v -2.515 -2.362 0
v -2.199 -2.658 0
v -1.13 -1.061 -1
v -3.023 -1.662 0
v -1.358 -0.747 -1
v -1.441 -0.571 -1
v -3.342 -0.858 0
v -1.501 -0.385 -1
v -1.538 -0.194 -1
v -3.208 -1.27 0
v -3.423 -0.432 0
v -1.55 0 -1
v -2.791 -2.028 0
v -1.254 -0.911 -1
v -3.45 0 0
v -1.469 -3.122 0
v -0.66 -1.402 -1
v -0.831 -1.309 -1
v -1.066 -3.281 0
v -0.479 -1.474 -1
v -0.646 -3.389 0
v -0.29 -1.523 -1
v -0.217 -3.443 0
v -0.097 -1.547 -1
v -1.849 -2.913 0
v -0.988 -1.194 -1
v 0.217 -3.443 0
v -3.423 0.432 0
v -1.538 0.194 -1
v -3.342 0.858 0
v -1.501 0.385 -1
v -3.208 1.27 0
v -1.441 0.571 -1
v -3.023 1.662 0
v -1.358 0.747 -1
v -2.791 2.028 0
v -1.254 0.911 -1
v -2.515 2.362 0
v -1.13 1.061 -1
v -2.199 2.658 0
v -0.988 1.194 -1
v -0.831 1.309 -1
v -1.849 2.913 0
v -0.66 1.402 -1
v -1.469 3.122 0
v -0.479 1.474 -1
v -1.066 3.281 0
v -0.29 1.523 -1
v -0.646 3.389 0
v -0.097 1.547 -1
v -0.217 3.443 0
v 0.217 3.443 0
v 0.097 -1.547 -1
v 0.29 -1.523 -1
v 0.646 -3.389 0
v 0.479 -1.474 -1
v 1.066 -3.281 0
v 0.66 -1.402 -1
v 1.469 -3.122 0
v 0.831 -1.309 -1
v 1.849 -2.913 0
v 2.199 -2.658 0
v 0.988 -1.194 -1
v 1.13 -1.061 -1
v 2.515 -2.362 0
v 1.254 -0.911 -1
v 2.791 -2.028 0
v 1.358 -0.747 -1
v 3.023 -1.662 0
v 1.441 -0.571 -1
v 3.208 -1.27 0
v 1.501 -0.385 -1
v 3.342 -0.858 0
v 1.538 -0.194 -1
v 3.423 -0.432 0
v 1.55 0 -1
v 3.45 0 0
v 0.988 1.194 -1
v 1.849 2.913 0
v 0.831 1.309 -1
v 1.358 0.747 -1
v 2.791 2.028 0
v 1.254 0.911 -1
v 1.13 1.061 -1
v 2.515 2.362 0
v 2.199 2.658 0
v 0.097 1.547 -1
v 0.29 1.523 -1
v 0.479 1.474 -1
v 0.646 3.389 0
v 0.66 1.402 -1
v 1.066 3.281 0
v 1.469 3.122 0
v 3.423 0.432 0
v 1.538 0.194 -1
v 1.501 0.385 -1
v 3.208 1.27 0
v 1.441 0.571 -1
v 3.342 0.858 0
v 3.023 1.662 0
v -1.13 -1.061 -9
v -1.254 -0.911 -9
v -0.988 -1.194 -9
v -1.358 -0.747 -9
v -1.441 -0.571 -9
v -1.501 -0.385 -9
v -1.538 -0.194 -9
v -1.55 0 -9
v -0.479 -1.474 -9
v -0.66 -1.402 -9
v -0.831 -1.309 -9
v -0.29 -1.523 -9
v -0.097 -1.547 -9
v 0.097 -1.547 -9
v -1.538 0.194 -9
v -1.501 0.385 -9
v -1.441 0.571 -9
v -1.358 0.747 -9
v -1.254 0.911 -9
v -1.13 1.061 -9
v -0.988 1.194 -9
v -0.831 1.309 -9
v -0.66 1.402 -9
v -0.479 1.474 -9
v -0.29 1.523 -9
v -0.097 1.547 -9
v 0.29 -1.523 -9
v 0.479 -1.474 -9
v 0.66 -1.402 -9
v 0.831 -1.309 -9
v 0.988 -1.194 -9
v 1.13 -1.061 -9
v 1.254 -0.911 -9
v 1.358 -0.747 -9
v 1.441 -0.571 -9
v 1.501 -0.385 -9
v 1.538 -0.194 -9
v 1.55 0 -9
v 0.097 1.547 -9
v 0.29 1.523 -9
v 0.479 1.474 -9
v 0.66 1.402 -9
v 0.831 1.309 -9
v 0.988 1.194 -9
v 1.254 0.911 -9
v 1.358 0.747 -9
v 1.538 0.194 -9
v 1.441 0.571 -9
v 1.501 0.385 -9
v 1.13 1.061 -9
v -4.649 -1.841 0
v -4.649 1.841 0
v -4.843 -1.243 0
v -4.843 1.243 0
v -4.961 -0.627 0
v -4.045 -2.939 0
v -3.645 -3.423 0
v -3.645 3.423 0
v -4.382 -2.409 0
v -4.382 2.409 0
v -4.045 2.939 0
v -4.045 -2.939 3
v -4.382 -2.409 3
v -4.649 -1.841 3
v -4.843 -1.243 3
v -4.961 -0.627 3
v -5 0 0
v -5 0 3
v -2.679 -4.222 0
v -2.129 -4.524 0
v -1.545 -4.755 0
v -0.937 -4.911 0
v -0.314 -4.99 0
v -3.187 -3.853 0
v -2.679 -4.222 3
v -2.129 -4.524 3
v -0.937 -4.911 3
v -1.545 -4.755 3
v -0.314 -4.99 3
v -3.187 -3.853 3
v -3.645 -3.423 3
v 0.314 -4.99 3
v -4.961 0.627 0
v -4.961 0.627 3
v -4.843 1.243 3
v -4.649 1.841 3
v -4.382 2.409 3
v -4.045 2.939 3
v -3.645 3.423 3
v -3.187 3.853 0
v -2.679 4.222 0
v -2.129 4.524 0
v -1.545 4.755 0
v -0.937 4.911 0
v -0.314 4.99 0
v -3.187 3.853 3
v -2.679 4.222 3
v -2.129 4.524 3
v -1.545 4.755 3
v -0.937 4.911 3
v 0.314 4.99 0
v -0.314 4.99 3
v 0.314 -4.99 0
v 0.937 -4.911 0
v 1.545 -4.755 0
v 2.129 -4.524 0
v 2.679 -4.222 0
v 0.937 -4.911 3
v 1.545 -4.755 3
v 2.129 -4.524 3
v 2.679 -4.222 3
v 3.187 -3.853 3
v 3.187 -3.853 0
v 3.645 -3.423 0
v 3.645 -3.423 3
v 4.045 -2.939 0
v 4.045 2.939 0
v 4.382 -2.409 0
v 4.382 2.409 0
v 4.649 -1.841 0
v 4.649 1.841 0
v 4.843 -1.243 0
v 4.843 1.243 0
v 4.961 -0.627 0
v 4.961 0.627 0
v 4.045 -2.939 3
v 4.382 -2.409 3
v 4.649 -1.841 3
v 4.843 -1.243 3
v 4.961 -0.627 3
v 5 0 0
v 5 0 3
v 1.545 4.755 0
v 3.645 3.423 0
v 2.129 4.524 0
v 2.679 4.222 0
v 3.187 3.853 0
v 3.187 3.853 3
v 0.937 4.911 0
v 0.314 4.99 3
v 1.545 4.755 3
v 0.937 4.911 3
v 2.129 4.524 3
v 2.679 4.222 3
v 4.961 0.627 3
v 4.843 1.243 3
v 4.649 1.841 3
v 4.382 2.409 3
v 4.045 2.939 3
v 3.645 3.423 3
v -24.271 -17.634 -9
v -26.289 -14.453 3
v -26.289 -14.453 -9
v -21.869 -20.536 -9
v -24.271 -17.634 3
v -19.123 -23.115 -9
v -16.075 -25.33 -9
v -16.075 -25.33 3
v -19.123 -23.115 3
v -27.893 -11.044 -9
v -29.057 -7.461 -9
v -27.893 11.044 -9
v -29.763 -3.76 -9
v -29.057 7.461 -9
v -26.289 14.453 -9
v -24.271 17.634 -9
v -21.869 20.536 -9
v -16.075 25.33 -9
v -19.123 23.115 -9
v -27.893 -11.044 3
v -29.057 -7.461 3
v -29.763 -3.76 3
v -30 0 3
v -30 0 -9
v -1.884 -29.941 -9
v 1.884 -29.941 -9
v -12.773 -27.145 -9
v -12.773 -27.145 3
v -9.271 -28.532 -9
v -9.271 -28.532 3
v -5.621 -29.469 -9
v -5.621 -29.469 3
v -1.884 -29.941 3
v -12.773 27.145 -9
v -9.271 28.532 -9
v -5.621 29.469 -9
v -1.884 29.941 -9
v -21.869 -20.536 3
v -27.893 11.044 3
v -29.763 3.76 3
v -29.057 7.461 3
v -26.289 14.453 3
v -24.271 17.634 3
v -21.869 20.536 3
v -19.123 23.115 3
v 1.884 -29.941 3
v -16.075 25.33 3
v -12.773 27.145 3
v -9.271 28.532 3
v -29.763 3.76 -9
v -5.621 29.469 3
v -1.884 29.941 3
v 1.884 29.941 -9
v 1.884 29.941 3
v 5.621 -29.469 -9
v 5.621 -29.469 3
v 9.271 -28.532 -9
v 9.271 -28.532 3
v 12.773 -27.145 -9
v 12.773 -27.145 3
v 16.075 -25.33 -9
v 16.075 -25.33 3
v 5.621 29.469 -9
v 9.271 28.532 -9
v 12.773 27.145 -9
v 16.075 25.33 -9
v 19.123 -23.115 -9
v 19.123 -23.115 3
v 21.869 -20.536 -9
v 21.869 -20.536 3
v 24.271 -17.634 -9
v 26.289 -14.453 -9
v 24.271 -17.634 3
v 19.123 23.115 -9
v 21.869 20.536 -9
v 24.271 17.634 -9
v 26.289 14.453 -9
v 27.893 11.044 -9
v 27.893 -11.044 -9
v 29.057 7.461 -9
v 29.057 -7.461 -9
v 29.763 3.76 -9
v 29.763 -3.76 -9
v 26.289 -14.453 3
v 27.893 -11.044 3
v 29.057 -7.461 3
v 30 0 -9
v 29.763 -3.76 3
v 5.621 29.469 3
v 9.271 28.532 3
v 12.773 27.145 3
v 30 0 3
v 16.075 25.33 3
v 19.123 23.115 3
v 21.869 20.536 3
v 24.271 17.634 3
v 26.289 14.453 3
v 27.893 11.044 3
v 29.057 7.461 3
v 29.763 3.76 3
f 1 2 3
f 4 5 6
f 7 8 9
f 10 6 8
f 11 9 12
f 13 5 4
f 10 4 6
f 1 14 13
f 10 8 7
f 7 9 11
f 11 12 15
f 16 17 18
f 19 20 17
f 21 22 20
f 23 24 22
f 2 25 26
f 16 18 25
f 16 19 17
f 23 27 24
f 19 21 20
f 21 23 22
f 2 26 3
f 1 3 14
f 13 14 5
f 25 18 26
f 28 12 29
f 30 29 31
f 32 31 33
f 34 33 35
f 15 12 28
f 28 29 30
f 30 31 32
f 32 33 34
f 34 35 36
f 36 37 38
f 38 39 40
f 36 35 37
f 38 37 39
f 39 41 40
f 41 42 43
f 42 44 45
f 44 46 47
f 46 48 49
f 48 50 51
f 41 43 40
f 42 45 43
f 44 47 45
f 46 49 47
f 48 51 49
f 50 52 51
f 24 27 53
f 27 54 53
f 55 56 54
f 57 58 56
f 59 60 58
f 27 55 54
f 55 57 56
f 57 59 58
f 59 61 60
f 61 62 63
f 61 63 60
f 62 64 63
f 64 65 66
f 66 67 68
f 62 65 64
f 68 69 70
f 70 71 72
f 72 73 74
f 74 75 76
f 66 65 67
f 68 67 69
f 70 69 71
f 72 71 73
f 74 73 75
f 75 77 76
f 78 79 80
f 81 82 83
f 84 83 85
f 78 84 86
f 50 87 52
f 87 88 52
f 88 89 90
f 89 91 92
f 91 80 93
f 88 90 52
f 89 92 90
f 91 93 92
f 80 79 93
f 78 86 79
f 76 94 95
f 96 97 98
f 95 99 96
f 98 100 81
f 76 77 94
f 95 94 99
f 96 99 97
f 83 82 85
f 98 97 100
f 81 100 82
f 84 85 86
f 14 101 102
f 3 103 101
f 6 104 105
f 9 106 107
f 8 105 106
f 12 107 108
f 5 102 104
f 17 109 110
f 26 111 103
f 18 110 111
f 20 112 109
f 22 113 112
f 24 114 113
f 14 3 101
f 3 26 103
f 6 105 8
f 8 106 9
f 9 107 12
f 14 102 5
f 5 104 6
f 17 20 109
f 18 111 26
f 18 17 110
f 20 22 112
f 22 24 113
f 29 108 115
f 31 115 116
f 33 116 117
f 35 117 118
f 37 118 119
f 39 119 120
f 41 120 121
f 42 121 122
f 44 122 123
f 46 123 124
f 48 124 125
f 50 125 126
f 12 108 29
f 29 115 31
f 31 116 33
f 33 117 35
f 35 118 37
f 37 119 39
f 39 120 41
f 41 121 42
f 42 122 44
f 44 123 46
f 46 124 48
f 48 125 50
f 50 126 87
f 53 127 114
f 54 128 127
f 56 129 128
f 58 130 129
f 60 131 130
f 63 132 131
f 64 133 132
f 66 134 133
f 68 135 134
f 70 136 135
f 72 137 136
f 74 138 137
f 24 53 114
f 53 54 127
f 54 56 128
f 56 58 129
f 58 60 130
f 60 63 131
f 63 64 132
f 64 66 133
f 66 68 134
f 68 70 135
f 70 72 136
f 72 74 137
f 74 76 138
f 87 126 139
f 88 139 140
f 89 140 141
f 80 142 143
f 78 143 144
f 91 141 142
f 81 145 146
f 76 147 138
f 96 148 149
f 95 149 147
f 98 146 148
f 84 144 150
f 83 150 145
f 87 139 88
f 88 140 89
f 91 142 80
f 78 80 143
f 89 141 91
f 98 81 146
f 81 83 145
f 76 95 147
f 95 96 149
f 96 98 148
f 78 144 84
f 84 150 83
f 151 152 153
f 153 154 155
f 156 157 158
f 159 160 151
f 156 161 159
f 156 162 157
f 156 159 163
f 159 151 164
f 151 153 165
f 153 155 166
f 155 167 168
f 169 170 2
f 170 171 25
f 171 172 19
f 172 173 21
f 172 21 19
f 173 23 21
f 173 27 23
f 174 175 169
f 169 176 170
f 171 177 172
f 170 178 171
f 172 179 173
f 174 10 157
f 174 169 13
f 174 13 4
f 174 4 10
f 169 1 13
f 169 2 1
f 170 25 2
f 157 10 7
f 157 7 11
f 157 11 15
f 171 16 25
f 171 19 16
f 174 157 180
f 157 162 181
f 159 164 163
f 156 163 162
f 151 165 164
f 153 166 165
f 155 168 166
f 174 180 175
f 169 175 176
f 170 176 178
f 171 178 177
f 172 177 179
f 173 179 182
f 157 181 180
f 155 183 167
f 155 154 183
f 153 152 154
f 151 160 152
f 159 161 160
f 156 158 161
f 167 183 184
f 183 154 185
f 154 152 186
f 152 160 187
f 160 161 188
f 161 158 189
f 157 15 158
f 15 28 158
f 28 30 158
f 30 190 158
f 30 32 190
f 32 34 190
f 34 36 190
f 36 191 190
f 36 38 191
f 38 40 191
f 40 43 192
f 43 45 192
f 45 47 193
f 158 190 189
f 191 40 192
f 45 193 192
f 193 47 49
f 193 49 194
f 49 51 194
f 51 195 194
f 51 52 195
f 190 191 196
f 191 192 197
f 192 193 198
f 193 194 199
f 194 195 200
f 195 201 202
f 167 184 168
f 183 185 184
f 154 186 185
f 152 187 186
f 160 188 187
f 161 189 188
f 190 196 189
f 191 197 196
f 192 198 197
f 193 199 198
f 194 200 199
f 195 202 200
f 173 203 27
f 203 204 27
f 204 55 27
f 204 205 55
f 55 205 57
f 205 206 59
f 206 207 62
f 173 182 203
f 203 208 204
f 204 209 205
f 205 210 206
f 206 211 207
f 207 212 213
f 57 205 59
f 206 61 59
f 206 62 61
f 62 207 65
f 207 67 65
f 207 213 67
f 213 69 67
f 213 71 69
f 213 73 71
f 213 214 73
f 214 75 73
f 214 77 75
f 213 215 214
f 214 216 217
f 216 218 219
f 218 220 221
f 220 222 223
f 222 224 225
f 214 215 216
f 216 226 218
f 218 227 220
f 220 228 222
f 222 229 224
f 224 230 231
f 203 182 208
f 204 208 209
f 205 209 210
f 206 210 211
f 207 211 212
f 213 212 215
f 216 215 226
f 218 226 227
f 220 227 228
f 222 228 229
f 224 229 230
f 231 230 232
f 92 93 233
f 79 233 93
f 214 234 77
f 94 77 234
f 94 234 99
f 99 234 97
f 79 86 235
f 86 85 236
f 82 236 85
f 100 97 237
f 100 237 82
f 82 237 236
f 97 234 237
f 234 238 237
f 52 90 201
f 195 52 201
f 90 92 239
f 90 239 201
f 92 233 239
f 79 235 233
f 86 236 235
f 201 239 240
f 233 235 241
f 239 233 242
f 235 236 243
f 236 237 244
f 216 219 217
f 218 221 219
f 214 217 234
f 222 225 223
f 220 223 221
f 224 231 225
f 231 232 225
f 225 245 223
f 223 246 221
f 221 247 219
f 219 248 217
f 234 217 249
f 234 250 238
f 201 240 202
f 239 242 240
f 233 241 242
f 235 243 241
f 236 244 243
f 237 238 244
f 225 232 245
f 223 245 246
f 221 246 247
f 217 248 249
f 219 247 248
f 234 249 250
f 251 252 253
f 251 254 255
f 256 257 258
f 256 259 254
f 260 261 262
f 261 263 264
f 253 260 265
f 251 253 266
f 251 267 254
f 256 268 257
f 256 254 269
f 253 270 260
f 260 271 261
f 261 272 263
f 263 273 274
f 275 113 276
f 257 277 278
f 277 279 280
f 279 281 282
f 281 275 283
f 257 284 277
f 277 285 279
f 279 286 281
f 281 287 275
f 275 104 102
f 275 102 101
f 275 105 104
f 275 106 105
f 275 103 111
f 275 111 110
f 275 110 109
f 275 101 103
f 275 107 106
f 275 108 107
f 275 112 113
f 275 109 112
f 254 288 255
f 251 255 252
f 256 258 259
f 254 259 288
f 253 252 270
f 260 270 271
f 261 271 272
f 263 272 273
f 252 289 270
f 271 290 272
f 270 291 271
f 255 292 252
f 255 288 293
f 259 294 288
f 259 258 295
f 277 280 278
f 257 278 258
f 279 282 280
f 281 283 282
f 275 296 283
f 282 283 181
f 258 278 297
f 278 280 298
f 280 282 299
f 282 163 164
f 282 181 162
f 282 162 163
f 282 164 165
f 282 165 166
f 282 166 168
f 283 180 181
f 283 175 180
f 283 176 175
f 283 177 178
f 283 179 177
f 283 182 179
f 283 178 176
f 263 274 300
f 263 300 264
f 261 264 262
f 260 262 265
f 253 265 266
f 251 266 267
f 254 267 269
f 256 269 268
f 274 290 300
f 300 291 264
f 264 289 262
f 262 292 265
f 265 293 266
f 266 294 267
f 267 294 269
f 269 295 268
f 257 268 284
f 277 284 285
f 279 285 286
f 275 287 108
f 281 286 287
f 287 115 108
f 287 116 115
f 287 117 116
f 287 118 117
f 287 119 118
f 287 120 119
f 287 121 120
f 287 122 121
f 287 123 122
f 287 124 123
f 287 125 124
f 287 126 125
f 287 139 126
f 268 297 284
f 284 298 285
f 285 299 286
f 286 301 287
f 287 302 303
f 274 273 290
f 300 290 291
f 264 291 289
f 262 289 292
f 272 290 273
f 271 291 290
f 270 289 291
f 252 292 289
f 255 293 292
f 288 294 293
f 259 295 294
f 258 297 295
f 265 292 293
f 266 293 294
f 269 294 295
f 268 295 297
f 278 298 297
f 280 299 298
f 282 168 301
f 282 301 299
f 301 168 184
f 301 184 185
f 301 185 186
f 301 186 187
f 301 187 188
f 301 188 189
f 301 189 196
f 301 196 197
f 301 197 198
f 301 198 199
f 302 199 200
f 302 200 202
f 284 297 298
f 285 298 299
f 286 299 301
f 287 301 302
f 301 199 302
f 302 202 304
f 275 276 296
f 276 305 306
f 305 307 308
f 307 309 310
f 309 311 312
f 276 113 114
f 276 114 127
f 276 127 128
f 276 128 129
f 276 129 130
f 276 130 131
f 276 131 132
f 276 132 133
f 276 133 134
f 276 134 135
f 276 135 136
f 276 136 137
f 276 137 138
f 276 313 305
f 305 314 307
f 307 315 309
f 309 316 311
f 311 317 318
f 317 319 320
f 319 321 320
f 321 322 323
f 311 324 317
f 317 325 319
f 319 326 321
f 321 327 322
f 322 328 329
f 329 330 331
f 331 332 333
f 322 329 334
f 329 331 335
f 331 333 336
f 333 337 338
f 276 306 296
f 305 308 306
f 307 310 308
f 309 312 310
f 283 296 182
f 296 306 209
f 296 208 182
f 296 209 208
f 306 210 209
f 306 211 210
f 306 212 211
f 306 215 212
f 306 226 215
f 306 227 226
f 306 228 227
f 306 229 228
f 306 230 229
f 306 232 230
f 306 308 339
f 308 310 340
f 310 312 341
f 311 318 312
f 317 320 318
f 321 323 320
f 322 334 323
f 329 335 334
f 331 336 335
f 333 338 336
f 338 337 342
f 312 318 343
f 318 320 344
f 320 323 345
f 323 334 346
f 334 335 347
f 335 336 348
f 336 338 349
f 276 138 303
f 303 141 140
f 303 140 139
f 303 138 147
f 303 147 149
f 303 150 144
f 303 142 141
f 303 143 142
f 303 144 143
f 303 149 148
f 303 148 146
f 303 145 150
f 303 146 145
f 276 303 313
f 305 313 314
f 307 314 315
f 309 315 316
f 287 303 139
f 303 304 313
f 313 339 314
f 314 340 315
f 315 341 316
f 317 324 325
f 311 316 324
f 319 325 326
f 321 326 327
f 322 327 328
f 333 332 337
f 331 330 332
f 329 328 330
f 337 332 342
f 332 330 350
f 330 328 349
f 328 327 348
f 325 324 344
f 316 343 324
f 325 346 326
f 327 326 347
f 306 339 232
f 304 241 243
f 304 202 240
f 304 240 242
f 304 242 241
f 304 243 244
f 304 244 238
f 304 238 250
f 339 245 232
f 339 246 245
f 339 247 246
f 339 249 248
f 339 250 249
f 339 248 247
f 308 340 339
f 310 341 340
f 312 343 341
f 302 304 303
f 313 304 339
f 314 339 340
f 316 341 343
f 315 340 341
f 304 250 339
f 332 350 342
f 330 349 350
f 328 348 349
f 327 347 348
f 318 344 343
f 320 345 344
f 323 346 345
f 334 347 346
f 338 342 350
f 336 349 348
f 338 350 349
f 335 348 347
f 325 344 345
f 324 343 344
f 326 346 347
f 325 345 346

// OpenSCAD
$fn = 50;


difference() {
	union() {
		translate(v = [0, 0, -9.0000000000]) {
			cylinder(h = 12, r = 30.0000000000);
		}
	}
	union() {
		translate(v = [0, 0, 0]) {
			rotate(a = [0, 0, 0]) {
				difference() {
					union() {
						translate(v = [0, 0, -12.0000000000]) {
							cylinder(h = 12, r = 1.2500000000);
						}
						translate(v = [0, 0, -1.0000000000]) {
							cylinder(h = 1.0000000000, r1 = 1.5500000000, r2 = 3.4500000000);
						}
						translate(v = [0, 0, -12.0000000000]) {
							cylinder(h = 12, r = 1.5500000000);
						}
						translate(v = [0, 0, -12.0000000000]) {
							cylinder(h = 12, r = 1.2500000000);
						}
					}
					union();
				}
			}
		}
		#cylinder(h = 3, r = 5.0000000000);
	}
}
